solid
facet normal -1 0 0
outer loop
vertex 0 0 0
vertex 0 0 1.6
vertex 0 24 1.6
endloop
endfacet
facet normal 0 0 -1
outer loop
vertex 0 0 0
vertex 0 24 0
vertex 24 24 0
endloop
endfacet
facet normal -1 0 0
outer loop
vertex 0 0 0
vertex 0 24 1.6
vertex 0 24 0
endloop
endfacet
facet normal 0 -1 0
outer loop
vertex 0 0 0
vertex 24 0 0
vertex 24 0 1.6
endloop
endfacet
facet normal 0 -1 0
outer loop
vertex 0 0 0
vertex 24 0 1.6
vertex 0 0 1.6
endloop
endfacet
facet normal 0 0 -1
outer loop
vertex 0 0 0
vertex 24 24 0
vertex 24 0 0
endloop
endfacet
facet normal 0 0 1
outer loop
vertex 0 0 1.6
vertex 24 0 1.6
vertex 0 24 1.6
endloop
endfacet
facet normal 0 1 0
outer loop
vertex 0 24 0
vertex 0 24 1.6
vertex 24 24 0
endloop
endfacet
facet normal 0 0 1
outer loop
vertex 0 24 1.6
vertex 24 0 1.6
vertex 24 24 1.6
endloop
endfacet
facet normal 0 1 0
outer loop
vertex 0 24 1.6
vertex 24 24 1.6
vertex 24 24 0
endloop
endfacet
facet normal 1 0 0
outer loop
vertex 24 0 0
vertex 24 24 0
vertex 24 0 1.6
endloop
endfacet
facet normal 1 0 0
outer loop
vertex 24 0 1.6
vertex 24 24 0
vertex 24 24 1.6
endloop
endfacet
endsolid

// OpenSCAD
/* Warning, this is a very basic generator with a lot of approximation 
input data : [LQFP, 2WB, 24x24x1.6mm, 216, , A, C04-21014A]
generated by com.zoubworld.electronics.cad.model3d.Basic
Date : Sun Feb 15 10:50:49 CET 2026
*/

//body
color("black")
translate([0,0,0])
cube([24.0,24.0,1.6], center=false);
